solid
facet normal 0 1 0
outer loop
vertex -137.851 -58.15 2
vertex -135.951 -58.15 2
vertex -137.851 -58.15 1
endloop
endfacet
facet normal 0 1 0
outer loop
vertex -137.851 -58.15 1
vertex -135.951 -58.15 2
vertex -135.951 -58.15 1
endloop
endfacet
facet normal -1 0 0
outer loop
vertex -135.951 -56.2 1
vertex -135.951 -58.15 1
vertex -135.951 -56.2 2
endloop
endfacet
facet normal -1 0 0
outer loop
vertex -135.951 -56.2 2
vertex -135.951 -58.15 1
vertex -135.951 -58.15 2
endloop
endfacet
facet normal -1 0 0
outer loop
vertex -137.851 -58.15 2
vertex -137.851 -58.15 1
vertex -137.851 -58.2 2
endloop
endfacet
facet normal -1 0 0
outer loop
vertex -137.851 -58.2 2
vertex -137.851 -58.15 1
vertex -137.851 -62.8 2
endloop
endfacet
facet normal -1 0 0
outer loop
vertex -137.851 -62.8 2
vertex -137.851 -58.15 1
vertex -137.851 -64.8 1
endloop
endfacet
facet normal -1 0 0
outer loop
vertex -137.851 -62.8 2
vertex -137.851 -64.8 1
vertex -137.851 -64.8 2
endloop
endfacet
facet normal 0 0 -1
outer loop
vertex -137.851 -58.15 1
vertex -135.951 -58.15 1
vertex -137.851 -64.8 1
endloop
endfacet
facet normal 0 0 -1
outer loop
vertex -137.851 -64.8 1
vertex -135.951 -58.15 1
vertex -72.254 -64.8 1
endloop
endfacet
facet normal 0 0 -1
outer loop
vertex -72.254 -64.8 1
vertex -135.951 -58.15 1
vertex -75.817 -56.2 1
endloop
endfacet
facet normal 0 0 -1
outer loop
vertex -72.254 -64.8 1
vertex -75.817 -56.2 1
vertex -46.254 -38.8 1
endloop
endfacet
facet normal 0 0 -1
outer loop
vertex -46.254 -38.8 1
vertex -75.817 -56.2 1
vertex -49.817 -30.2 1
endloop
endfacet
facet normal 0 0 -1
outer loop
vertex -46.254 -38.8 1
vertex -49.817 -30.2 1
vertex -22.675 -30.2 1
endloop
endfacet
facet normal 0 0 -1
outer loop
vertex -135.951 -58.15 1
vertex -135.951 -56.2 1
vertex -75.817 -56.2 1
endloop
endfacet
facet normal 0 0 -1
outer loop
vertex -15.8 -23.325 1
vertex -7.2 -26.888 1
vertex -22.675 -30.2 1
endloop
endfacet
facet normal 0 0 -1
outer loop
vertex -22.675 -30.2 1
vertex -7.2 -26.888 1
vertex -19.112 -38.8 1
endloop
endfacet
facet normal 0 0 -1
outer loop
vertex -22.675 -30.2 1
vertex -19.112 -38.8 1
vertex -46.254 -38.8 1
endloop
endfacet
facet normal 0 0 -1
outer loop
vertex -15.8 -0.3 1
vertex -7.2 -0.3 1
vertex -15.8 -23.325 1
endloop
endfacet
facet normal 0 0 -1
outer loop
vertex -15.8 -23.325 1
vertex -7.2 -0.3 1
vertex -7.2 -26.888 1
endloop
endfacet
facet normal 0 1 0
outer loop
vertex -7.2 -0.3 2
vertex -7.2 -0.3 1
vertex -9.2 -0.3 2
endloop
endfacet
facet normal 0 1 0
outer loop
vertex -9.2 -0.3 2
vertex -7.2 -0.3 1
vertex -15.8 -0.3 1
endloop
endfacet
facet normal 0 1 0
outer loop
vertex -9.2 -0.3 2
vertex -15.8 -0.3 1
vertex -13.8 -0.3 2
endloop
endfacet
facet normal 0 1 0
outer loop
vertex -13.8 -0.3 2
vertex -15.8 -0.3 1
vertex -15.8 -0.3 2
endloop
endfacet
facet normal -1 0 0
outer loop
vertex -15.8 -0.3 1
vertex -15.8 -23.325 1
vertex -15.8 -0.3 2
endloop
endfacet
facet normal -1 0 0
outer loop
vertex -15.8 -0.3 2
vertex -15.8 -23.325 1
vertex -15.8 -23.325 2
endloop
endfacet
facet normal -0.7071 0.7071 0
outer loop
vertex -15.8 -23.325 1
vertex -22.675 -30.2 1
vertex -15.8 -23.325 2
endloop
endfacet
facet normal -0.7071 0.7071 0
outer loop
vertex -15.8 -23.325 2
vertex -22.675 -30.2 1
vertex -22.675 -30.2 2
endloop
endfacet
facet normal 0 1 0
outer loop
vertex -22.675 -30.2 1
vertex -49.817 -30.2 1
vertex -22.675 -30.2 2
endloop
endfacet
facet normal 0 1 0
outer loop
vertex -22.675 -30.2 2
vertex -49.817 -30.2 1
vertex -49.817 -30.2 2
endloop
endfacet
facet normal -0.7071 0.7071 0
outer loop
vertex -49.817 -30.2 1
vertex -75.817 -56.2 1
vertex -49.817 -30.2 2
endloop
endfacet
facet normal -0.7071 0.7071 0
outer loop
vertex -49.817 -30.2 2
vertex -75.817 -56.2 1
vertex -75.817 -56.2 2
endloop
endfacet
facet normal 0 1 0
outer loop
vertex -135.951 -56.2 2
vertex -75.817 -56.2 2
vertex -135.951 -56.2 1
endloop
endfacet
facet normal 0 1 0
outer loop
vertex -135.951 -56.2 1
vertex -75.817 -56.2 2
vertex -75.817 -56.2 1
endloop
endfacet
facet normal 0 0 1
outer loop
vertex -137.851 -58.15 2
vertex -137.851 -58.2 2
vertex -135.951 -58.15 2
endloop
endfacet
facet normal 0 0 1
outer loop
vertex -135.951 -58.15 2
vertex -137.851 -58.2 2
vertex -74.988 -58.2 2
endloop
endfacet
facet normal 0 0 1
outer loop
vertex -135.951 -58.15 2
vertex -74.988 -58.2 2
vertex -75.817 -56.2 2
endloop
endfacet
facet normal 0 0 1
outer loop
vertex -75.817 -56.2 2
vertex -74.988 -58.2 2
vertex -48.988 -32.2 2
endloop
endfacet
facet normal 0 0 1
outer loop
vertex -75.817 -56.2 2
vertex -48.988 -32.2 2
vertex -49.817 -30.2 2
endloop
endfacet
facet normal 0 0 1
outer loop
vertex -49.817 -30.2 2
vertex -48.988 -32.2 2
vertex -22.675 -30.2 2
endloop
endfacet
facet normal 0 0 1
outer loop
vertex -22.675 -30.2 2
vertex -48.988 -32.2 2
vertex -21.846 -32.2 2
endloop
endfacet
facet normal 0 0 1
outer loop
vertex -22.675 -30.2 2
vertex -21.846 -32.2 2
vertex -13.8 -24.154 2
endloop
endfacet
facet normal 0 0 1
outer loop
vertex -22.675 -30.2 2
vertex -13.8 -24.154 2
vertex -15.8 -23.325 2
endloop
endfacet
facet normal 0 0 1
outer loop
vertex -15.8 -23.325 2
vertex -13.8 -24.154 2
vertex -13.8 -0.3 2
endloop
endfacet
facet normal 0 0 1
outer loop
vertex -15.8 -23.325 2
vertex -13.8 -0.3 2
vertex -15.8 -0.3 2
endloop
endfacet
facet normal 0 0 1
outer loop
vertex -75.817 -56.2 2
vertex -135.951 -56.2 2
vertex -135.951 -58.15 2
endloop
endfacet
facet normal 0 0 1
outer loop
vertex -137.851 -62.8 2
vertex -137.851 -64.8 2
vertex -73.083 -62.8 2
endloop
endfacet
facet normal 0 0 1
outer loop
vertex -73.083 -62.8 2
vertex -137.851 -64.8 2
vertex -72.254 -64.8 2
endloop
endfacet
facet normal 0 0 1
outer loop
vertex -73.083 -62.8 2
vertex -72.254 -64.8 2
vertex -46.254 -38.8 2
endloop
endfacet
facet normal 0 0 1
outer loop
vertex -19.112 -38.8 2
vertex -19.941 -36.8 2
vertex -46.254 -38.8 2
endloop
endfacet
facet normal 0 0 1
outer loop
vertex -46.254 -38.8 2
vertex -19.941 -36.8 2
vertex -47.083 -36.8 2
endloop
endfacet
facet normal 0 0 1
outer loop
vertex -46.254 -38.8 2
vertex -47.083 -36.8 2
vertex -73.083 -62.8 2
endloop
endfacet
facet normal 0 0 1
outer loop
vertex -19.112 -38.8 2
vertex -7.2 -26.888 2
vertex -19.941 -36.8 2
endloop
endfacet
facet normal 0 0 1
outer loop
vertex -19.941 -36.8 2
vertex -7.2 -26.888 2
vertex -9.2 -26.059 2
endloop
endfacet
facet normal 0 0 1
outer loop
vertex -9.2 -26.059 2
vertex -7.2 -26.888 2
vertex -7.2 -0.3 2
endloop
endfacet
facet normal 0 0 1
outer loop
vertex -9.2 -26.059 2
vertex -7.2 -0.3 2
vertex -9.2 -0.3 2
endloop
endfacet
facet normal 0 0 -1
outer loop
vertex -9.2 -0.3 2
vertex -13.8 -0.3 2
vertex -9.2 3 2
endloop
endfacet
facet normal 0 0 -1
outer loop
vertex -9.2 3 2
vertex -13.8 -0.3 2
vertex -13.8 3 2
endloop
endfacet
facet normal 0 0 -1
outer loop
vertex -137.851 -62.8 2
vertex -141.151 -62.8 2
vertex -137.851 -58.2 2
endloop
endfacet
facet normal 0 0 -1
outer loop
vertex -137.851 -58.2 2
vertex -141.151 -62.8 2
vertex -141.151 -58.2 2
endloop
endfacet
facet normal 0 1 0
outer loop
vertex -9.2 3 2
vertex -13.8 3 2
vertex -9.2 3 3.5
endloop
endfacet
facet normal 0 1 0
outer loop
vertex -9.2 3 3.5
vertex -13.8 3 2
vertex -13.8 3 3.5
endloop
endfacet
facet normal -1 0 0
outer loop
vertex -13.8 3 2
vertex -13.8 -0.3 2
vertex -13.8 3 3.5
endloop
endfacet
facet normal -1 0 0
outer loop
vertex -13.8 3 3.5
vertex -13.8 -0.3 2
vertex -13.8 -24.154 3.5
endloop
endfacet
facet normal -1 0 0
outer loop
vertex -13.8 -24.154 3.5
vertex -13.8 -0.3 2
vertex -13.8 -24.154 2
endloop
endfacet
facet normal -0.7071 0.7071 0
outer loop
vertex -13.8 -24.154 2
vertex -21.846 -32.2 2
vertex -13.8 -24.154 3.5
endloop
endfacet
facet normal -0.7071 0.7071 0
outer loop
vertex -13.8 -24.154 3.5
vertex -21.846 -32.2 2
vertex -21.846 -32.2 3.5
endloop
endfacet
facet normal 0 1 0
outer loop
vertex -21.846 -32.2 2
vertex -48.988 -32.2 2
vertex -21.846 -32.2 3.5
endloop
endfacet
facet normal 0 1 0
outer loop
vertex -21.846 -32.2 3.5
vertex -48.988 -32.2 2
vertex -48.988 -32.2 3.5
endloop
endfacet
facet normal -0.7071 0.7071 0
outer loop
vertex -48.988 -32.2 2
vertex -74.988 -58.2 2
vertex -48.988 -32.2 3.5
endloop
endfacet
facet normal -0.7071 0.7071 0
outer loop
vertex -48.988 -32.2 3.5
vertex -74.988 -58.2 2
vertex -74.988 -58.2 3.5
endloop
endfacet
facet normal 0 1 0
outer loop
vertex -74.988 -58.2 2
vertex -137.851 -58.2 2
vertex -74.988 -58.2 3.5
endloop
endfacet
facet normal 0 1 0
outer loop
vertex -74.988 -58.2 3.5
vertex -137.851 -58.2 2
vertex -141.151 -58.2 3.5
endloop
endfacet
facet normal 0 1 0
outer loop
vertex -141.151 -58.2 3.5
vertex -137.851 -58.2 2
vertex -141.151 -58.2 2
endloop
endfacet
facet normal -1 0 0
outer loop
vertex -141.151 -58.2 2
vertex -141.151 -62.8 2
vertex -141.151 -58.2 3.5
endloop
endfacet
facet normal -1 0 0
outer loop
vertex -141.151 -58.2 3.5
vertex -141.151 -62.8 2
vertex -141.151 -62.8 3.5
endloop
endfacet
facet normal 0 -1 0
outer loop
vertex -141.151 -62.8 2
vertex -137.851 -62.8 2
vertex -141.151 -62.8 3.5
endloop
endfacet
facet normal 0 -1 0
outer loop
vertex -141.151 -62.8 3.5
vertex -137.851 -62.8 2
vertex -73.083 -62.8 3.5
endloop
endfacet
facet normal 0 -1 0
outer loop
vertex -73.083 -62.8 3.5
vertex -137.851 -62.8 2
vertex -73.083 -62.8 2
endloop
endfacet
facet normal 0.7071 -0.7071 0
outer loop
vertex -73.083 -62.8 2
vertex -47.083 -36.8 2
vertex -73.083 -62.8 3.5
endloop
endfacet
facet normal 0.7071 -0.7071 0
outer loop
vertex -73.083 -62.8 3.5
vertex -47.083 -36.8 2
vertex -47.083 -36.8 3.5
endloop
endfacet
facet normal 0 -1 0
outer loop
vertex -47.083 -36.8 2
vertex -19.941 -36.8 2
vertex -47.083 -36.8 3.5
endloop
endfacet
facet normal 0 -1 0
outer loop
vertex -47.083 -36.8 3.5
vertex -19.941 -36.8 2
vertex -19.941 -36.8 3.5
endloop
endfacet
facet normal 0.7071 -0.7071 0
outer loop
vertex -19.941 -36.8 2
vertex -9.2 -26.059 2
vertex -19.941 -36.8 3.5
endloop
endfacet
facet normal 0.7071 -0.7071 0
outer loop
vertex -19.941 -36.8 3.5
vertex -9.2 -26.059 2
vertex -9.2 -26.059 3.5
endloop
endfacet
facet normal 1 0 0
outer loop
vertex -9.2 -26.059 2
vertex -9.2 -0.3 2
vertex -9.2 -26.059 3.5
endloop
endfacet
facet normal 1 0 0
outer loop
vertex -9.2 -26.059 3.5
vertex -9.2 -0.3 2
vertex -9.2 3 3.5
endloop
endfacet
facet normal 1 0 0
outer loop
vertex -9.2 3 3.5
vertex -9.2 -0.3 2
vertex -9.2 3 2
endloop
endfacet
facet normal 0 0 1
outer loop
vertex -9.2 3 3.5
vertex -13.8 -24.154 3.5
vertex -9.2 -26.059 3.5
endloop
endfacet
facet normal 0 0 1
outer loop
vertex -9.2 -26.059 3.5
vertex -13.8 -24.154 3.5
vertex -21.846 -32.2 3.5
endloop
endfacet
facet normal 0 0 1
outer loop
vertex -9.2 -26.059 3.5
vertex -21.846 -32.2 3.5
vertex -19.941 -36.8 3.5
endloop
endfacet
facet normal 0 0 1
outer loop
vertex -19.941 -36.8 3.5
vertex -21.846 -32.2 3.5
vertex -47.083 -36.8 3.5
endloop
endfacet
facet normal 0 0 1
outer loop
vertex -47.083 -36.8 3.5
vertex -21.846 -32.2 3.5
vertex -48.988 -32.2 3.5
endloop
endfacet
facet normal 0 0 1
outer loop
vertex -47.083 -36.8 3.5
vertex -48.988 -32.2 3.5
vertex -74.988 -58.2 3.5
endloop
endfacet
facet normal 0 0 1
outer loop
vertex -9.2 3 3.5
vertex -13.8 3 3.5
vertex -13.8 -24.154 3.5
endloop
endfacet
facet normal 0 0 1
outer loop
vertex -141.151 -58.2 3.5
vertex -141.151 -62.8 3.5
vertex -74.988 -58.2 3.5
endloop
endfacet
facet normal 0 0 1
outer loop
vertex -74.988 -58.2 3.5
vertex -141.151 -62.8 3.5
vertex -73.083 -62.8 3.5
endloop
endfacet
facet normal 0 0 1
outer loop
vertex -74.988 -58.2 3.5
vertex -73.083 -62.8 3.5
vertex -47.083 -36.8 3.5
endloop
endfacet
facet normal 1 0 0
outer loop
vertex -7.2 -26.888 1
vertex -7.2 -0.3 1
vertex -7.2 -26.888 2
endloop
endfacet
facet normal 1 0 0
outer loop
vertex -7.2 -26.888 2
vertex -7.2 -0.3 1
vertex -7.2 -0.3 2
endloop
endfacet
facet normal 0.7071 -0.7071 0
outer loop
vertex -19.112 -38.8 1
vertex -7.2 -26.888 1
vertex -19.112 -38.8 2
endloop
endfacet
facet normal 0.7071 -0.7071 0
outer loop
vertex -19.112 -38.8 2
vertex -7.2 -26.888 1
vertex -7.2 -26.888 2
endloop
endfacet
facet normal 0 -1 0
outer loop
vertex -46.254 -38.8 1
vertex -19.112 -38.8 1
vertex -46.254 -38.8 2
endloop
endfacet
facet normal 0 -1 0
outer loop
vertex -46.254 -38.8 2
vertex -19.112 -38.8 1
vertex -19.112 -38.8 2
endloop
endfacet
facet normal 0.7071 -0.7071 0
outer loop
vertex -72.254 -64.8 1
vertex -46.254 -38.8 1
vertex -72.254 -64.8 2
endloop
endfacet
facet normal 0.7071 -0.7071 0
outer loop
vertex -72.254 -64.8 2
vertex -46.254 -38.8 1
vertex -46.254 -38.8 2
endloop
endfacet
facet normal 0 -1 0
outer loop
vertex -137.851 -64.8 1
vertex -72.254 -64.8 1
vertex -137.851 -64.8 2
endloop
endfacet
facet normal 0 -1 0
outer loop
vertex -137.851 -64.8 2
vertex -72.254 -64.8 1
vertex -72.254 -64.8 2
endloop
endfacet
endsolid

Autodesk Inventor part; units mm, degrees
ref_plane "YZ Plane" through (0, 0, 0) normal (1, 0, 0) x (0, 1, 0)
ref_plane "XZ Plane" through (0, 0, 0) normal (0, 1, 0) x (-1, 0, 0)
ref_plane "XY Plane" through (0, 0, 0) normal (0, 0, 1) x (1, 0, 0)
sketch "Эскиз1" plane through (0, 0, 0) normal (0, 0, 1) x (1, 0, 0)
  line L0 (-136.1512, -7) -> (-131.1512, -2) projected
  line L1 (-131.1512, -2) -> (-99.224, -2) projected
  line L2 (-19, -2) -> (-19, -22) projected
  line L3 (-19, -22) -> (-24, -27) projected
  line L4 (-24, -27) -> (-30.8711, -27) projected
  line L5 (-136.1512, -27) -> (-136.1512, -7) projected
  line L6 (-141.1512, -58) -> (-75.0711, -58) projected
  line L7 (-75.0711, -58) -> (-49.0711, -32) projected
  line L8 (-49.0711, -32) -> (-21.9289, -32) projected
  line L9 (-21.9289, -32) -> (-14, -24.0711) projected
  line L10 (-14, -24.0711) -> (-14, 3) projected
  line L11 (-133.2223, 3) -> (-14, 3) projected
  line L12 (-133.2223, 3) -> (-141.1512, -4.9289) projected
  line L13 (-141.1512, -58) -> (-141.1512, -4.9289) projected
  line L14 (-44.9289, -42) -> (-24.8579, -42) projected
  line L15 (-24.8579, -42) -> (-45.8579, -63) projected
  line L16 (-45.8579, -63) -> (-65.9289, -63) projected
  line L17 (-65.9289, -63) -> (-44.9289, -42) projected
  line L18 (-4, 3) -> (-9, 3) projected
  line L19 (-9, 3) -> (-9, -26.1421) projected
  line L20 (-9, -26.1421) -> (-19.8579, -37) projected
  line L21 (-19.8579, -37) -> (-47, -37) projected
  line L22 (-47, -37) -> (-73, -63) projected
  line L23 (-73, -63) -> (-141.1512, -63) projected
  line L24 (-141.1512, -67.9) -> (-141.1512, -63) projected
  line L25 (-47.0828, -36.8) -> (-19.9407, -36.8)
  line L26 (-19.9407, -36.8) -> (-9.2, -26.0593)
  line L27 (-9.2, -26.0593) -> (-9.2, 3.2)
  line L28 (-9.2, 3.2) -> (3.2, 3.2)
  line L29 (3.2, 3.2) -> (3.2, -31.1955)
  line L30 (3.2, -31.1955) -> (-40.7045, -75.1)
  line L31 (-40.7045, -75.1) -> (-141.3512, -75.1)
  line L32 (-141.3512, -75.1) -> (-141.3512, -62.8)
  line L33 (-141.3512, -62.8) -> (-73.0828, -62.8)
  line L34 (-73.0828, -62.8) -> (-47.0828, -36.8)
  line L35 (-21.8461, -32.2) -> (-48.9882, -32.2)
  line L36 (-48.9882, -32.2) -> (-74.9882, -58.2)
  line L37 (-74.9882, -58.2) -> (-141.3512, -58.2)
  line L38 (-141.3512, -58.2) -> (-141.3512, -4.8461)
  line L39 (-141.3512, -4.8461) -> (-133.3051, 3.2)
  line L40 (-133.3051, 3.2) -> (-13.8, 3.2)
  line L41 (-13.8, 3.2) -> (-13.8, -24.1539)
  line L42 (-13.8, -24.1539) -> (-21.8461, -32.2)
  line L43 (-9, 3) -> (-14, 3)
  line L44 (-141.1512, -63) -> (-141.1512, -58)
  line L45 (-99.224, -2) -> (-93.5671, -2) projected
  line L46 (-93.5671, -2) -> (-86.696, -2) projected
  line L47 (-86.696, -2) -> (-81.0391, -2) projected
  line L48 (-81.0391, -2) -> (-74.168, -2) projected
  line L49 (-74.168, -2) -> (-68.5111, -2) projected
  line L50 (-68.5111, -2) -> (-61.64, -2) projected
  line L51 (-61.64, -2) -> (-55.9831, -2) projected
  line L52 (-55.9831, -2) -> (-49.112, -2) projected
  line L53 (-49.112, -2) -> (-43.4551, -2) projected
  line L54 (-43.4551, -2) -> (-36.584, -2) projected
  line L55 (-36.584, -2) -> (-30.9271, -2) projected
  line L56 (-30.9271, -2) -> (-19, -2) projected
  line L57 (-30.8711, -27) -> (-36.528, -27) projected
  line L58 (-36.528, -27) -> (-43.3991, -27) projected
  line L59 (-43.3991, -27) -> (-49.056, -27) projected
  line L60 (-49.056, -27) -> (-55.9271, -27) projected
  line L61 (-55.9271, -27) -> (-61.584, -27) projected
  line L62 (-61.584, -27) -> (-68.4551, -27) projected
  line L63 (-68.4551, -27) -> (-74.112, -27) projected
  line L64 (-74.112, -27) -> (-80.9831, -27) projected
  line L65 (-80.9831, -27) -> (-86.64, -27) projected
  line L66 (-86.64, -27) -> (-93.5111, -27) projected
  line L67 (-93.5111, -27) -> (-99.168, -27) projected
  line L68 (-99.168, -27) -> (-106.0391, -27) projected
  line L69 (-106.0391, -27) -> (-111.696, -27) projected
  line L70 (-111.696, -27) -> (-136.1512, -27) projected
  line L71 (-43.6868, -67.9) -> (-141.1512, -67.9) projected
  line L72 (-4, -28.2132) -> (-43.6868, -67.9) projected
  line L73 (-4, 3) -> (-4, -28.2132) projected
  point P0 (-9.2, 3)
  point P1 (-13.8, 3)
  point P2 (-141.1512, -58.2)
  point P3 (-141.1512, -62.8)
  dimension "d15" = 0.2
  dimension "d16" = 0.2
extrude "Выдавливание1" add sketch "Эскиз1" against normal blind 1.5 contours L37 L36 L35 L42 L41 L43 L27 L26 L25 L34 L33 L44
sketch "Эскиз2" plane through (0, 0, 0) normal (0, 0, 1) x (1, 0, 0)
  line L0 (-9.2, -26.0593) -> (-9.2, 3) projected
  line L1 (-9.2, 3) -> (-13.8, 3) projected
  line L2 (-13.8, 3) -> (-13.8, -24.1539) projected
  line L3 (-13.8, -24.1539) -> (-21.8461, -32.2) projected
  line L4 (-21.8461, -32.2) -> (-48.9882, -32.2) projected
  line L5 (-48.9882, -32.2) -> (-74.9882, -58.2) projected
  line L6 (-74.9882, -58.2) -> (-141.1512, -58.2) projected
  line L7 (-141.1512, -58.2) -> (-141.1512, -62.8) projected
  line L8 (-141.1512, -62.8) -> (-73.0828, -62.8) projected
  line L9 (-73.0828, -62.8) -> (-47.0828, -36.8) projected
  line L10 (-47.0828, -36.8) -> (-19.9407, -36.8) projected
  line L11 (-19.9407, -36.8) -> (-9.2, -26.0593) projected
  line L12 (-7.2, -26.8877) -> (-7.2, 5)
  line L13 (-7.2, 5) -> (-15.8, 5)
  line L14 (-15.8, 5) -> (-15.8, -23.3255)
  line L15 (-15.8, -23.3255) -> (-22.6745, -30.2)
  line L16 (-22.6745, -30.2) -> (-49.8167, -30.2)
  line L17 (-49.8167, -30.2) -> (-75.8167, -56.2)
  line L18 (-75.8167, -56.2) -> (-143.1512, -56.2)
  line L19 (-143.1512, -56.2) -> (-143.1512, -64.8)
  line L20 (-143.1512, -64.8) -> (-72.2544, -64.8)
  line L21 (-72.2544, -64.8) -> (-46.2544, -38.8)
  line L22 (-46.2544, -38.8) -> (-19.1123, -38.8)
  line L23 (-19.1123, -38.8) -> (-7.2, -26.8877)
  line L24 (-138.1512, -66.9) -> (-138.1512, -63) projected
  line L25 (-138.1512, -64.8) -> (-137.8512, -64.8)
  line L26 (-137.8512, -64.8) -> (-137.8512, -56.2)
  line L27 (-5.3, 0) -> (-14, 0) projected
  line L28 (-7.2, 0) -> (-7.2, -0.3)
  line L29 (-7.2, -0.3) -> (-15.8, -0.3)
  dimension "d17" = 2
  dimension "d18" = 0.3
  dimension "d19" = 0.3
extrude "Выдавливание2" add sketch "Эскиз2" along normal blind 1 contours L11 L10 L9 L8 L26 L6 L5 L4 L3 L2 L29 L0 | L0 L29 L12 L23 L22 L21 L20 L26 L8 L9 L10 L11 | L2 L3 L4 L5 L6 L26 L18 L17 L16 L15 L14 L29
mirror "Зеркальное отражение1" about plane through (-72.5256, -32.55, 1) normal (0, 0, 1) of "Выдавливание2", "Выдавливание1"
sketch "Эскиз3" plane through (0, 0, -1.5) normal (0, 0, -1) x (-1, 0, 0)
  line L0 (163, 30) -> (-28, 30)
  line L1 (-28, 30) -> (-28, -127)
  line L2 (-28, -127) -> (163, -127)
  line L3 (163, -127) -> (163, 30)
  point P0 (0, 0)
extrude "Выдавливание3" cut sketch "Эскиз3" against normal blind 2.5
sketch "Эскиз4" plane through (0, 0, 1) normal (0, 0, -1) x (-1, 0, 0)
  line L0 (39.0089, -22.15) -> (21.8668, -22.15) projected
  line L1 (21.8668, -22.15) -> (13.85, -14.1332) projected
  line L2 (13.85, -14.1332) -> (13.85, 3) projected
  line L3 (13.85, 3) -> (9.15, 3) projected
  line L4 (9.15, 3) -> (9.15, -16.08) projected
  line L5 (9.15, -16.08) -> (19.92, -26.85) projected
  line L6 (19.92, -26.85) -> (37.0621, -26.85) projected
  line L7 (37.0621, -26.85) -> (73.0621, -62.85) projected
  line L8 (73.0621, -62.85) -> (141.1512, -62.85) projected
  line L9 (141.1512, -62.85) -> (141.1512, -58.15) projected
  line L10 (141.1512, -58.15) -> (75.0089, -58.15) projected
  line L11 (75.0089, -58.15) -> (39.0089, -22.15) projected
  line L12 (9.15, -16.08) -> (9.15, -0.2) projected
  line L13 (6, -0.2) -> (9.15, -0.2) projected
  line L14 (6, -17.3848) -> (6, -0.2) projected
  line L15 (18.6152, -30) -> (6, -17.3848) projected
  line L16 (35.7574, -30) -> (18.6152, -30) projected
  line L17 (71.7574, -66) -> (35.7574, -30) projected
  line L18 (137.9512, -66) -> (71.7574, -66) projected
  line L19 (137.9512, -62.85) -> (137.9512, -66) projected
  line L20 (137.9512, -62.85) -> (73.0621, -62.85) projected
  line L21 (73.0621, -62.85) -> (37.0621, -26.85) projected
  line L22 (37.0621, -26.85) -> (19.92, -26.85) projected
  line L23 (19.92, -26.85) -> (9.15, -16.08) projected
  line L24 (13.85, -0.2) -> (13.85, -14.1332) projected
  line L25 (13.85, -14.1332) -> (21.8668, -22.15) projected
  line L26 (21.8668, -22.15) -> (39.0089, -22.15) projected
  line L27 (39.0089, -22.15) -> (75.0089, -58.15) projected
  line L28 (75.0089, -58.15) -> (137.9512, -58.15) projected
  line L29 (137.9512, -55) -> (137.9512, -58.15) projected
  line L30 (76.3137, -55) -> (137.9512, -55) projected
  line L31 (40.3137, -19) -> (76.3137, -55) projected
  line L32 (23.1716, -19) -> (40.3137, -19) projected
  line L33 (17, -12.8284) -> (23.1716, -19) projected
  line L34 (17, -0.2) -> (17, -12.8284) projected
  line L35 (13.85, -0.2) -> (17, -0.2) projected
  line L36 (137.9512, -58.15) -> (135.9512, -58.15)
  line L37 (135.9512, -58.15) -> (135.9512, -55)
  line L38 (135.9512, -55) -> (137.9512, -55)
  line L39 (137.9512, -55) -> (137.9512, -58.15)
  point P0 (0, 0)
  point P1 (135.9512, -58.15)
  dimension "d12" = 2
extrude "Выдавливание4" cut sketch "Эскиз4" against normal blind 1 contours L37 L30 L29 L10
properties part number "left_line"
